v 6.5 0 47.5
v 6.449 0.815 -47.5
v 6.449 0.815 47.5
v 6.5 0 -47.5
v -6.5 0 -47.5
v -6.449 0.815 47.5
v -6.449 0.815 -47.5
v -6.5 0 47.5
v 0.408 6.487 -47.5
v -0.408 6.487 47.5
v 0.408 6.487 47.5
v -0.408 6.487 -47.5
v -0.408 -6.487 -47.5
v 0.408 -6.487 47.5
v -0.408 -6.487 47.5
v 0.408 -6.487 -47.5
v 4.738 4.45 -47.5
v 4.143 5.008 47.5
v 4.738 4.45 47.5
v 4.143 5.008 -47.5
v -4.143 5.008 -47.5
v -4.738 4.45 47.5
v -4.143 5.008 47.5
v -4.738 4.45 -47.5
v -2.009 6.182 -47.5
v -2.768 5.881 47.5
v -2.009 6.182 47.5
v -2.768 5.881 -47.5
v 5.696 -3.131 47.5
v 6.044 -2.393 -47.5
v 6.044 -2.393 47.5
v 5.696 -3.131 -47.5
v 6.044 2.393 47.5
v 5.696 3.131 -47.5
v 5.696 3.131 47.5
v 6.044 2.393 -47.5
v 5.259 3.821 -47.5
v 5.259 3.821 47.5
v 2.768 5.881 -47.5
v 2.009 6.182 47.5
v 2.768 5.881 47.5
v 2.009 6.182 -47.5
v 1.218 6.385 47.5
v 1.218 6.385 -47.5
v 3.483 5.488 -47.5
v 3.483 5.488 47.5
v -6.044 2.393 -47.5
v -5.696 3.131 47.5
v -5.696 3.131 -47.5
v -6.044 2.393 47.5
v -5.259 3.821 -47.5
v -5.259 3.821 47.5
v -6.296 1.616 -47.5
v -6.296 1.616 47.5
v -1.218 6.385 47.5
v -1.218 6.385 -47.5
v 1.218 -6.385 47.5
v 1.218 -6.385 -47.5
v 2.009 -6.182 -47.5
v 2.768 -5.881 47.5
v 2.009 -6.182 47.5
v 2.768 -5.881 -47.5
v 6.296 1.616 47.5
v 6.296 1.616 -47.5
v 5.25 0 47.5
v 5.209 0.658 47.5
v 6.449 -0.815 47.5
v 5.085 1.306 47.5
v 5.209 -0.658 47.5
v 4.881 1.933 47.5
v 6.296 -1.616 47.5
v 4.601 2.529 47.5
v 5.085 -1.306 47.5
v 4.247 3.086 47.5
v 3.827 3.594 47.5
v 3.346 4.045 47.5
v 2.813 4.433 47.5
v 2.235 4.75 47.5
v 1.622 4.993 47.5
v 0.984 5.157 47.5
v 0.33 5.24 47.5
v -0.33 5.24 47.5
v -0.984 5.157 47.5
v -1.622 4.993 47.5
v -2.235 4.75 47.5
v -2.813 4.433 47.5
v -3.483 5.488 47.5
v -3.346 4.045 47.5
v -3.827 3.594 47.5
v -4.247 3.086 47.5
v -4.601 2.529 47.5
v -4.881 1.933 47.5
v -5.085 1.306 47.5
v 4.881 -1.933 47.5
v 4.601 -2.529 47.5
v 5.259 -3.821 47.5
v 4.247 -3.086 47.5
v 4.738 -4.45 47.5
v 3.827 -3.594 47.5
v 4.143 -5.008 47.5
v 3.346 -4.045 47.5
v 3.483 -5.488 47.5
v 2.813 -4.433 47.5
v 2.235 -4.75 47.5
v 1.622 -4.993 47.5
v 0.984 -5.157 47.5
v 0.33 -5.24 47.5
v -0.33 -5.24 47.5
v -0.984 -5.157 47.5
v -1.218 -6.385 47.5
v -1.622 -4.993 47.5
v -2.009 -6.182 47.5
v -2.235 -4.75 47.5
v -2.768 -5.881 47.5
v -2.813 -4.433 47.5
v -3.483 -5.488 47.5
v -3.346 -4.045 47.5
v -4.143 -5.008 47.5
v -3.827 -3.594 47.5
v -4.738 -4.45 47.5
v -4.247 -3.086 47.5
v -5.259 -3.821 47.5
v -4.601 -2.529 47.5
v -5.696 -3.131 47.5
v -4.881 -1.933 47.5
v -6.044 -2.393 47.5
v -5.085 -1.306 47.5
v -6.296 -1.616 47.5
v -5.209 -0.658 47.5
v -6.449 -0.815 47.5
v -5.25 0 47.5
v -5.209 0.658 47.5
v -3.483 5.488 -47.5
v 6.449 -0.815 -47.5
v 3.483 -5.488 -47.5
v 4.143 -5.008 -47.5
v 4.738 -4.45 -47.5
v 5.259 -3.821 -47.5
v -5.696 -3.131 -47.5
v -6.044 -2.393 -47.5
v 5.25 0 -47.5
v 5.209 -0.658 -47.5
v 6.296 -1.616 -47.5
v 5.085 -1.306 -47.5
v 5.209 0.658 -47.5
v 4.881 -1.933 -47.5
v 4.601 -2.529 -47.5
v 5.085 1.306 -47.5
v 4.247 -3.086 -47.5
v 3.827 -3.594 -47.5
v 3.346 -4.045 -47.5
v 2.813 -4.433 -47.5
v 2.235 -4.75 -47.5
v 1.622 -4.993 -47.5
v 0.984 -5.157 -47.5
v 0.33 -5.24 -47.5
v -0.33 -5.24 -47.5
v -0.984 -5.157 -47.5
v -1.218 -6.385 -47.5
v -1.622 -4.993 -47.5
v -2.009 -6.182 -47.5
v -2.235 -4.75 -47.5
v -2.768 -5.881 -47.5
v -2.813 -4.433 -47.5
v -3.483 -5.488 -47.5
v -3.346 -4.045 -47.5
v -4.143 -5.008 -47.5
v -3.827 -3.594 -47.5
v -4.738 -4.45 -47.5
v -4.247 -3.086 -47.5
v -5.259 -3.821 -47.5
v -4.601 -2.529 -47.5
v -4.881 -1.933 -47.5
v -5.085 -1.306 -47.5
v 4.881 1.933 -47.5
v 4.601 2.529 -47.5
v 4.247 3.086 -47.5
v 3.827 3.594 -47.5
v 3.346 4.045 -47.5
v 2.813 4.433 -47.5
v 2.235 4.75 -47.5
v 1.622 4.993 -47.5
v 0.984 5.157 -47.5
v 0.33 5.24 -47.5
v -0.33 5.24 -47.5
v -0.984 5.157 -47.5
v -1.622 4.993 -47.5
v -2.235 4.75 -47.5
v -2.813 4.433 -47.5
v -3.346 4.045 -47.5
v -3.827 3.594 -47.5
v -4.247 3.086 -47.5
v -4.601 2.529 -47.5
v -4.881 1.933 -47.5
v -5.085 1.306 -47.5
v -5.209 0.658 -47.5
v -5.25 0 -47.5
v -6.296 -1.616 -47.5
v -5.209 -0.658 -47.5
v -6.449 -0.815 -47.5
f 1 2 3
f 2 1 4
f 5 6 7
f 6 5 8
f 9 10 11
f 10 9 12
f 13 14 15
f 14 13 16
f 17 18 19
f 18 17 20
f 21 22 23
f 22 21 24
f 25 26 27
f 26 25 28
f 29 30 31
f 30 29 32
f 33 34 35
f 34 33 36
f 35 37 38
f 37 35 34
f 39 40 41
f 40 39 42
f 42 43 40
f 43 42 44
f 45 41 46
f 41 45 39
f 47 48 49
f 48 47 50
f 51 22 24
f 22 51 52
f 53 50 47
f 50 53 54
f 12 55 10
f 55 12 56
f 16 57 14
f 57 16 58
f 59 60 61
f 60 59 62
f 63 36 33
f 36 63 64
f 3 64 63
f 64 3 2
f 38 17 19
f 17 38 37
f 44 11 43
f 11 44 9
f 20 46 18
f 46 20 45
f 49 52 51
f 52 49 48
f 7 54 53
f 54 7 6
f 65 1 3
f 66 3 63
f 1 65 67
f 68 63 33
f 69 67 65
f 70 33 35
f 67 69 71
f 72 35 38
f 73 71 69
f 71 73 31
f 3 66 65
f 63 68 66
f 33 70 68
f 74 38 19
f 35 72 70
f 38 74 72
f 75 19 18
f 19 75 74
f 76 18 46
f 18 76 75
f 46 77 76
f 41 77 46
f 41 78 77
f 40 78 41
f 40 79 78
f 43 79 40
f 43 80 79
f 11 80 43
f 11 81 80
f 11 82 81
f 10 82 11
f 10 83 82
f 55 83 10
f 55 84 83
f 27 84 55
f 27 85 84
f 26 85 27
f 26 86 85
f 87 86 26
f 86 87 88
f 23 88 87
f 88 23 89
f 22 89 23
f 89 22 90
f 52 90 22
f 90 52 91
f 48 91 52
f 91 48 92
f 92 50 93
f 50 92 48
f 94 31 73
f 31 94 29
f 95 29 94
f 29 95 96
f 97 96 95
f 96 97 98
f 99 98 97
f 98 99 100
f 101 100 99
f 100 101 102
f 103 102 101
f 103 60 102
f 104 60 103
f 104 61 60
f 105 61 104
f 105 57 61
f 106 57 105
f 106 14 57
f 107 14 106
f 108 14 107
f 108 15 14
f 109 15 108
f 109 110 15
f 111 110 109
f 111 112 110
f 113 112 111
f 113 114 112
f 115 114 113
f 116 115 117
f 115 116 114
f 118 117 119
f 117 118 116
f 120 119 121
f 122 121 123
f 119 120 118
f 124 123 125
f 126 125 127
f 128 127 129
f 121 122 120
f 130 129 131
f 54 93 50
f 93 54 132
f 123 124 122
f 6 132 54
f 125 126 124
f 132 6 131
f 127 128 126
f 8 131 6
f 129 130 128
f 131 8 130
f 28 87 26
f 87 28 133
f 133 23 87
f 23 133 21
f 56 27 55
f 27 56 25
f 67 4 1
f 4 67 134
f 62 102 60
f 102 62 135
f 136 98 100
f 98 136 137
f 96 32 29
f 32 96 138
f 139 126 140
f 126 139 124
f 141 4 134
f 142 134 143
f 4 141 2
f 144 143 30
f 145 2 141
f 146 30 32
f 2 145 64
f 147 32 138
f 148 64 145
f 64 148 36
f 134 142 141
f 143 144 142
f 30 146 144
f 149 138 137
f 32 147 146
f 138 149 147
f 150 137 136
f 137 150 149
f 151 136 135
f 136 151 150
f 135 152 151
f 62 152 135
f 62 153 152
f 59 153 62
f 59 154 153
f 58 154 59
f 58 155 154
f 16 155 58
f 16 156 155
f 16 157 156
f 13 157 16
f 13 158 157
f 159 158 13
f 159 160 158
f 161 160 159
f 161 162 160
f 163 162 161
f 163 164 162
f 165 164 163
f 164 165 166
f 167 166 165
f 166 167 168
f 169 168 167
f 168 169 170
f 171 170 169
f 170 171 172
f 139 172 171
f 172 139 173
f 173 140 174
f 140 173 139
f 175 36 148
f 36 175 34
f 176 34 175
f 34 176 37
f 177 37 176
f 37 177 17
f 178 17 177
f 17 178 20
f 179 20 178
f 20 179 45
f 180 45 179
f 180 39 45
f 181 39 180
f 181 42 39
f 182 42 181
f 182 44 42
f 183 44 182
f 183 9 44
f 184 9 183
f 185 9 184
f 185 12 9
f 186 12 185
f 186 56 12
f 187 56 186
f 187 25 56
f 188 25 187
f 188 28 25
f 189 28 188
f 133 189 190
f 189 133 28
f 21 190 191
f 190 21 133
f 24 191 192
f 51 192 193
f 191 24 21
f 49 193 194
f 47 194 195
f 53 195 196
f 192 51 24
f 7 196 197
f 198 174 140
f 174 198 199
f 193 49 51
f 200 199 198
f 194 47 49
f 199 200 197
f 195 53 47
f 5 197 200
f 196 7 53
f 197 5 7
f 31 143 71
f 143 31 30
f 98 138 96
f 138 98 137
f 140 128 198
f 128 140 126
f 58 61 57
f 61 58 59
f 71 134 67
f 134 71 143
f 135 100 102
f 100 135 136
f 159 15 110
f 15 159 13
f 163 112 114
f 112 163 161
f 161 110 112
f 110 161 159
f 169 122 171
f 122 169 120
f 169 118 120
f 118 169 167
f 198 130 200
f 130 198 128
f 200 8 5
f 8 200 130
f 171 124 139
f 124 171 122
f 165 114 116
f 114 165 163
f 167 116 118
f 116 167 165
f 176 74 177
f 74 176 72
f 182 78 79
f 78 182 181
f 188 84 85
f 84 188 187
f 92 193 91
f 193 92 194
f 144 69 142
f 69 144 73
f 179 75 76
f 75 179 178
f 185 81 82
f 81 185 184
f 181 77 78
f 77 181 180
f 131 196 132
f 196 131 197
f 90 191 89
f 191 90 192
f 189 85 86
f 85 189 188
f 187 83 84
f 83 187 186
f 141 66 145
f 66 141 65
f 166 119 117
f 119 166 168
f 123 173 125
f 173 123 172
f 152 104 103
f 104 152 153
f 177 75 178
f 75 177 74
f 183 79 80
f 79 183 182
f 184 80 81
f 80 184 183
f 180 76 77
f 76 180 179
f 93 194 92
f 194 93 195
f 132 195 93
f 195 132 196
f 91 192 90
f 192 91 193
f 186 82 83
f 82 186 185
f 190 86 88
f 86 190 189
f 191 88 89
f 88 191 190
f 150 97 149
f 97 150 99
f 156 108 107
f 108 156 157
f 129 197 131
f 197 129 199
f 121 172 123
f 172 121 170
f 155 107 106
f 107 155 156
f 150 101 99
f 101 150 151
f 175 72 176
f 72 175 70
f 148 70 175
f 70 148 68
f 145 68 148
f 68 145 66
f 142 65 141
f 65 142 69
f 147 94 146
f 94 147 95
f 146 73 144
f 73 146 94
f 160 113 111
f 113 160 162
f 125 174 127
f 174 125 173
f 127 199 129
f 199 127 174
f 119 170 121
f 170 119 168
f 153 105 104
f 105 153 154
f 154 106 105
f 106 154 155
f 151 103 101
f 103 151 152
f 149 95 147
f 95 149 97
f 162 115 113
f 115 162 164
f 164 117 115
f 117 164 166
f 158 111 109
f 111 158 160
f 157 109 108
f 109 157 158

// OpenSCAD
$fn = 50;


difference() {
	union() {
		translate(v = [0, 0, -47.5000000000]) {
			cylinder(h = 95, r = 6.5000000000);
		}
	}
	union() {
		translate(v = [0, 0, -100.0000000000]) {
			cylinder(h = 200, r = 5.2500000000);
		}
	}
}
